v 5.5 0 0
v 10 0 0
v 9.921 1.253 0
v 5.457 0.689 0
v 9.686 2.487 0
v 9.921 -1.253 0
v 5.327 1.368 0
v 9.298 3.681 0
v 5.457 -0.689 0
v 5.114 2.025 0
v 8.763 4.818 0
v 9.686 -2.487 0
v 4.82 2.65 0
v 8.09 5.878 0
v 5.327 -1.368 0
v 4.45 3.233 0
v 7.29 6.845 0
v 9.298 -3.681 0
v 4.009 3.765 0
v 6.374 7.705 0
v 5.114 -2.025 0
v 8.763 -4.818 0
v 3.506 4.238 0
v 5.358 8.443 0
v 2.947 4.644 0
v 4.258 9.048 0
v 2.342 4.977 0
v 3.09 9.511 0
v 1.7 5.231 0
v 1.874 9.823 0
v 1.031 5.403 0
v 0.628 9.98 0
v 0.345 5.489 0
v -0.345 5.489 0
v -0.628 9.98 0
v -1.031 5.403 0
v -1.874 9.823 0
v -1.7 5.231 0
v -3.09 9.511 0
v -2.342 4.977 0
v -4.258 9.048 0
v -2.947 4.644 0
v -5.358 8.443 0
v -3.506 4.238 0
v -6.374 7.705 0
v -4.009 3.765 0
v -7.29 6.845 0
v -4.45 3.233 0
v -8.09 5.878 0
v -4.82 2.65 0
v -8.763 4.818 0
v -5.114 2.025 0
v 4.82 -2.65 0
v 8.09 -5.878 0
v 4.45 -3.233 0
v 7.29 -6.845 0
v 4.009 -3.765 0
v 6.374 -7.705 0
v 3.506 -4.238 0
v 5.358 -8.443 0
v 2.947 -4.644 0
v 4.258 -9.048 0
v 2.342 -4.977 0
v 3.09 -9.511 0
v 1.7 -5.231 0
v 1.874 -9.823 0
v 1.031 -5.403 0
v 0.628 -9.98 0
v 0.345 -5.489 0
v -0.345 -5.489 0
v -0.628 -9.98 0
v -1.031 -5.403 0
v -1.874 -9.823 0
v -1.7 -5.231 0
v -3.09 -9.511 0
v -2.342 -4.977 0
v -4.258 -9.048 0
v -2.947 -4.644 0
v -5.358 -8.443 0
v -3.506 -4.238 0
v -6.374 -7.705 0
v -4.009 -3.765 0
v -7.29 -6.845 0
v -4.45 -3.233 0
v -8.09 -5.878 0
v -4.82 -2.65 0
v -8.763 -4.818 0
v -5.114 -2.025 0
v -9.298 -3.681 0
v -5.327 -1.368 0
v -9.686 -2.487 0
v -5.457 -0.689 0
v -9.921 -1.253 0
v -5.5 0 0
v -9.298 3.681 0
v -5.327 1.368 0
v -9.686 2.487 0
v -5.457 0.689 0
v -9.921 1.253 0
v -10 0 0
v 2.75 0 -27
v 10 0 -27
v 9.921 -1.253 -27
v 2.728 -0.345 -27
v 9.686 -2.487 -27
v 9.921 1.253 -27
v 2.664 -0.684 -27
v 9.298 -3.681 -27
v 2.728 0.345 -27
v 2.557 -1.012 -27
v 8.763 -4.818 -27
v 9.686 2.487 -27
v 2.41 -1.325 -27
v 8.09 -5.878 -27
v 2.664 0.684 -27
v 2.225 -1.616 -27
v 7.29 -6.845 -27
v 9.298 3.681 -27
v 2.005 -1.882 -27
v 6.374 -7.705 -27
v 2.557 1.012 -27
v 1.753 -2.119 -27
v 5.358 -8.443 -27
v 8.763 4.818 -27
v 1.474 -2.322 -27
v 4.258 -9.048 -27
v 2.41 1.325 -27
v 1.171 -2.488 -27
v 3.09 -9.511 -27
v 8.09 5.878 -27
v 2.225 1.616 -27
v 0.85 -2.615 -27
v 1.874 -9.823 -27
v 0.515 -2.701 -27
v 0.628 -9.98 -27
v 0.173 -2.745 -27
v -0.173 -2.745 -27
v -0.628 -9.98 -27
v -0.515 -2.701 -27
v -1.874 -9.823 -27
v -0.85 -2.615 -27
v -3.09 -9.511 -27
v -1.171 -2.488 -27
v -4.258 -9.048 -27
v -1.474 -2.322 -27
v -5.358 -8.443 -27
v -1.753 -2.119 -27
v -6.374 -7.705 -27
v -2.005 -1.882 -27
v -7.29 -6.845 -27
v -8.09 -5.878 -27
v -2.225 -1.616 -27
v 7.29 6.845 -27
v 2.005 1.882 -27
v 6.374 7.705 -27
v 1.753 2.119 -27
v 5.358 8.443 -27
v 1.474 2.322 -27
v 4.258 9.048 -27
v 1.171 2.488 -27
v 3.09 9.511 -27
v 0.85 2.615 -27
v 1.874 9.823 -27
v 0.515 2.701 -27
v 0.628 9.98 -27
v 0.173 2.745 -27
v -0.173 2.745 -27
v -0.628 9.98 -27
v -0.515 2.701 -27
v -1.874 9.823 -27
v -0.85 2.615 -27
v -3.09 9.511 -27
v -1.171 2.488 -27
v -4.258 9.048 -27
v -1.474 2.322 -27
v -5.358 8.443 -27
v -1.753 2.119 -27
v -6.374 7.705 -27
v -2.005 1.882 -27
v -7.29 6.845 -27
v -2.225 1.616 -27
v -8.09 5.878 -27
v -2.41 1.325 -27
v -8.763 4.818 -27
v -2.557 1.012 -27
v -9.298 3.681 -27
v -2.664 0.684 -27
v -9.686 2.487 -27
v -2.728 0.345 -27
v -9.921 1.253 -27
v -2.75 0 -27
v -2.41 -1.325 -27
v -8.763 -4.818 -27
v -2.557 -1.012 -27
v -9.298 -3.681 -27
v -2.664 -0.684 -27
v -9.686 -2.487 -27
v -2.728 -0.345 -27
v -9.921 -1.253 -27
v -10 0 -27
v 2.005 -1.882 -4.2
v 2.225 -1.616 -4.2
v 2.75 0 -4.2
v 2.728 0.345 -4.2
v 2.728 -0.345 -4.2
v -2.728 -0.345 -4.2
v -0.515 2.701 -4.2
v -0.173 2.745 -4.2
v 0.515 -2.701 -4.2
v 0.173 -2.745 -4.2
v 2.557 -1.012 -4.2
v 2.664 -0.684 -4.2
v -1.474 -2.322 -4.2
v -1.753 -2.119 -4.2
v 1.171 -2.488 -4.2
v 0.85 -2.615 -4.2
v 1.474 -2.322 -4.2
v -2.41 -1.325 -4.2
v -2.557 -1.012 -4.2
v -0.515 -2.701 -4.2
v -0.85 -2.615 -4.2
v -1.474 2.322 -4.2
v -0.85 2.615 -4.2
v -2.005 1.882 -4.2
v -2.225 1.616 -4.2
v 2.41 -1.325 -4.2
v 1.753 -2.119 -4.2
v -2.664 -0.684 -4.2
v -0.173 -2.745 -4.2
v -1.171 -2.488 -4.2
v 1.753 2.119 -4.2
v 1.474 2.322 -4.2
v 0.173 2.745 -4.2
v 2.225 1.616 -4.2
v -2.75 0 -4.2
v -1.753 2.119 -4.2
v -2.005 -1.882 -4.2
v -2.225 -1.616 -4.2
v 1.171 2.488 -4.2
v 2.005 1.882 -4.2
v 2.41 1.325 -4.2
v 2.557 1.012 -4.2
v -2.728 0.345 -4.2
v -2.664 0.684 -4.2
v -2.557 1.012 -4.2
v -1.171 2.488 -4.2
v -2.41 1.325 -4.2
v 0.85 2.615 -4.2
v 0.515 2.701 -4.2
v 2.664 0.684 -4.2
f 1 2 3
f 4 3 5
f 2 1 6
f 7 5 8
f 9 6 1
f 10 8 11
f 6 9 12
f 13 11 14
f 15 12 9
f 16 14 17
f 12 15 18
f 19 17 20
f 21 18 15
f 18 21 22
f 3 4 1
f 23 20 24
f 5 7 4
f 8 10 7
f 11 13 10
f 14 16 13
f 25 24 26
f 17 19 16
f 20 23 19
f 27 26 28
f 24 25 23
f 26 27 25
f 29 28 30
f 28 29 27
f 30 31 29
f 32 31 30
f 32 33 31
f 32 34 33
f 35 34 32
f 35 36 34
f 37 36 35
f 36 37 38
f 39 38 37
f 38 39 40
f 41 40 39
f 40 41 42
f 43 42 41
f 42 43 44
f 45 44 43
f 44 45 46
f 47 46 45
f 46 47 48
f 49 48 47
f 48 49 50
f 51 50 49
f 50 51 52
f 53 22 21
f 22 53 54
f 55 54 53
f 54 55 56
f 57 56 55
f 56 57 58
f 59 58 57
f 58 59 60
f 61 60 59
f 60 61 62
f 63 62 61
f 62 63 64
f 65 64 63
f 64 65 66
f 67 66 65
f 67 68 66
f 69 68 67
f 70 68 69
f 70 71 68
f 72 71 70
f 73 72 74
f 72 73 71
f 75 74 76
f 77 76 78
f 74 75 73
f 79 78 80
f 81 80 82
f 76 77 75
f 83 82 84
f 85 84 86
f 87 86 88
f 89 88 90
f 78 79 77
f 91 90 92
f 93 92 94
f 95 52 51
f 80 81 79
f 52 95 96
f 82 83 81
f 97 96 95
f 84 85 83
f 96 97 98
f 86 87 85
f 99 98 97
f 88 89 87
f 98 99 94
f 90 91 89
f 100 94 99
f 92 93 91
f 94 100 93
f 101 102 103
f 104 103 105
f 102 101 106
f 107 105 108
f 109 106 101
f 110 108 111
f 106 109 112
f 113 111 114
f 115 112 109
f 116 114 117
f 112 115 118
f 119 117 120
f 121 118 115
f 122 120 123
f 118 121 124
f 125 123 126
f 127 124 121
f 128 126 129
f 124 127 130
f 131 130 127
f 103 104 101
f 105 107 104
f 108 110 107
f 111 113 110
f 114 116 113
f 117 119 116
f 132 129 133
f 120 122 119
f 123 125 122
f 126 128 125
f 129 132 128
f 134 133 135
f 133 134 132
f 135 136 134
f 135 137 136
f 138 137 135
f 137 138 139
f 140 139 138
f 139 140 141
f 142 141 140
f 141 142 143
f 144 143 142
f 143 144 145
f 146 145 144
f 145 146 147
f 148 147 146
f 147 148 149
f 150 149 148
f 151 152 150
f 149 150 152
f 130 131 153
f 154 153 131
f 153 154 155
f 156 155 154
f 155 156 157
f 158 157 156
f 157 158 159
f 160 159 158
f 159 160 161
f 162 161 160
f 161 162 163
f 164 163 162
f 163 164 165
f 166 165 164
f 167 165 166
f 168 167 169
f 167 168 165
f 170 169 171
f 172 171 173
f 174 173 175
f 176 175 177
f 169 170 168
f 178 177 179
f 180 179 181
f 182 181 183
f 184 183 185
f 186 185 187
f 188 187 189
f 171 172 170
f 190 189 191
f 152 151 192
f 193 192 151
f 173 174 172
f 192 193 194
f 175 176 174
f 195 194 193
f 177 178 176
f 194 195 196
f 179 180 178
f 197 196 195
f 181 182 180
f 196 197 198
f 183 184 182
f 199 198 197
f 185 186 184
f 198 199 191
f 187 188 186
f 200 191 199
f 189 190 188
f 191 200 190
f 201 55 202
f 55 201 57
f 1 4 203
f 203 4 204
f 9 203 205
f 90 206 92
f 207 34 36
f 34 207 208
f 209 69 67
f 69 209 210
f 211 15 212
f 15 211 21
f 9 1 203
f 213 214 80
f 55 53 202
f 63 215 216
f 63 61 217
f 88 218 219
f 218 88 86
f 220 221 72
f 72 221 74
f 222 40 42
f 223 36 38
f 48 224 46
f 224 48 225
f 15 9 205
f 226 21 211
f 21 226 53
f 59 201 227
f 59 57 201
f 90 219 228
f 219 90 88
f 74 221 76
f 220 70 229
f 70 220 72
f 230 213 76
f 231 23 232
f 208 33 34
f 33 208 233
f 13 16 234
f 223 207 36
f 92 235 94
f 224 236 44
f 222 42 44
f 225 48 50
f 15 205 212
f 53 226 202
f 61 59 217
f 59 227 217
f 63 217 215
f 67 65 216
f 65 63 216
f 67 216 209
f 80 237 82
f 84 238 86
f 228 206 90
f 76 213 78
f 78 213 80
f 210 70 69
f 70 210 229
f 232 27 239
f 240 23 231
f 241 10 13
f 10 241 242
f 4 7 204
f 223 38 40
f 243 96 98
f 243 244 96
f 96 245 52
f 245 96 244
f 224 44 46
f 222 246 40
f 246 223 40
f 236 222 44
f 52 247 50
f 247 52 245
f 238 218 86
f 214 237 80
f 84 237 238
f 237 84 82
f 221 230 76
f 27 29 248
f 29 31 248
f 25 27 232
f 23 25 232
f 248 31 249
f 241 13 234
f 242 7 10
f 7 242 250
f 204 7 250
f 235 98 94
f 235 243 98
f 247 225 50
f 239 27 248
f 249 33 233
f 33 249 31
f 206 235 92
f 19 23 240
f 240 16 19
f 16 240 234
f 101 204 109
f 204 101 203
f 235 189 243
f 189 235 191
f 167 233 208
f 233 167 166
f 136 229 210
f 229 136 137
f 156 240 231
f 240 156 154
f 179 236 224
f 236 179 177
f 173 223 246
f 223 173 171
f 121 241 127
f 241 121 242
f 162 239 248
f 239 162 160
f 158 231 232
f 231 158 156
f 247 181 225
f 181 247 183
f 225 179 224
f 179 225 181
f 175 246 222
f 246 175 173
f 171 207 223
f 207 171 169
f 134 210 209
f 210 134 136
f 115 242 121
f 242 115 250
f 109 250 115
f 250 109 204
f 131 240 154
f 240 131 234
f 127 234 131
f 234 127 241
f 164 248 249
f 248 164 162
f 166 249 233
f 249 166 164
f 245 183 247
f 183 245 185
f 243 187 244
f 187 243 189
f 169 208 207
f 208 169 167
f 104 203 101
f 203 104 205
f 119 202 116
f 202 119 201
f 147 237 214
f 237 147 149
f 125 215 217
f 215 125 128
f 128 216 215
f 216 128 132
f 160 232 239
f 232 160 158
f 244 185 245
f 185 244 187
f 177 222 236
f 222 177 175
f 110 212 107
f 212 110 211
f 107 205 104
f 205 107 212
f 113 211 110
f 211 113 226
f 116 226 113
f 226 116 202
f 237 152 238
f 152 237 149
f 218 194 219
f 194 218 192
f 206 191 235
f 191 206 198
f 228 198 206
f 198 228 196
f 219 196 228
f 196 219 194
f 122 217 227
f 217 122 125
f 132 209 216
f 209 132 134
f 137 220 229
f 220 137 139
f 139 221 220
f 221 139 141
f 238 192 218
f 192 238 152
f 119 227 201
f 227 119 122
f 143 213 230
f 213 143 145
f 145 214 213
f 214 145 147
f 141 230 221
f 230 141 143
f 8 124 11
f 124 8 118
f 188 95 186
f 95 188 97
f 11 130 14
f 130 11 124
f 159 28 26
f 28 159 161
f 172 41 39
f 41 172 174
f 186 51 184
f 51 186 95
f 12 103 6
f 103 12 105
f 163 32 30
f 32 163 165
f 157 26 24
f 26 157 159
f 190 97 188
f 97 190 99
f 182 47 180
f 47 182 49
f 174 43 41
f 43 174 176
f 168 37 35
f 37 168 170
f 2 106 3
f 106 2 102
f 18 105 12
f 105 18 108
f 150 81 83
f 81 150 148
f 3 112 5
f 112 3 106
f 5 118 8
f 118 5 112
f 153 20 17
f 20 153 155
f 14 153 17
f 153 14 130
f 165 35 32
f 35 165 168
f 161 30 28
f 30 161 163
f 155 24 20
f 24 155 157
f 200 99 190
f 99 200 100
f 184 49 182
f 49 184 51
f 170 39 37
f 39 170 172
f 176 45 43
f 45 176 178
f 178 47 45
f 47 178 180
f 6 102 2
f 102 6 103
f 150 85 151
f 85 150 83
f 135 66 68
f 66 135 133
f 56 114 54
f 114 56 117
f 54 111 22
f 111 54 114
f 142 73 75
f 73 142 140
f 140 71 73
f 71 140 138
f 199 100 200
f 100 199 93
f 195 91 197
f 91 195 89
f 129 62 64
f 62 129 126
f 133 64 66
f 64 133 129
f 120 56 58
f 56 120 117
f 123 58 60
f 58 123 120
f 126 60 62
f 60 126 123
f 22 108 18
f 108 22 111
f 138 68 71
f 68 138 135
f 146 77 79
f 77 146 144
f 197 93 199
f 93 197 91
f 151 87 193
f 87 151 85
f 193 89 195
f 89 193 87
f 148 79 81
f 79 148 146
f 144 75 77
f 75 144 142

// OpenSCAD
$fn = 50;


difference() {
	union() {
		translate(v = [0, 0, -27.0000000000]) {
			cylinder(h = 27, r = 10.0000000000);
		}
		cylinder(h = 0, r = 16.0000000000);
	}
	union() {
		translate(v = [0, 0, 0]) {
			rotate(a = [0, 0, 0]) {
				difference() {
					union() {
						#translate(v = [0, 0, -27.0000000000]) {
							cylinder(h = 27, r = 2.2500000000);
						}
						#translate(v = [0, 0, -4.2000000000]) {
							cylinder(h = 4.2000000000, r1 = 2.7500000000, r2 = 5.5000000000);
						}
						#translate(v = [0, 0, -27.0000000000]) {
							cylinder(h = 27, r = 2.7500000000);
						}
						#translate(v = [0, 0, -27.0000000000]) {
							cylinder(h = 27, r = 2.2500000000);
						}
					}
					union();
				}
			}
		}
	}
}
